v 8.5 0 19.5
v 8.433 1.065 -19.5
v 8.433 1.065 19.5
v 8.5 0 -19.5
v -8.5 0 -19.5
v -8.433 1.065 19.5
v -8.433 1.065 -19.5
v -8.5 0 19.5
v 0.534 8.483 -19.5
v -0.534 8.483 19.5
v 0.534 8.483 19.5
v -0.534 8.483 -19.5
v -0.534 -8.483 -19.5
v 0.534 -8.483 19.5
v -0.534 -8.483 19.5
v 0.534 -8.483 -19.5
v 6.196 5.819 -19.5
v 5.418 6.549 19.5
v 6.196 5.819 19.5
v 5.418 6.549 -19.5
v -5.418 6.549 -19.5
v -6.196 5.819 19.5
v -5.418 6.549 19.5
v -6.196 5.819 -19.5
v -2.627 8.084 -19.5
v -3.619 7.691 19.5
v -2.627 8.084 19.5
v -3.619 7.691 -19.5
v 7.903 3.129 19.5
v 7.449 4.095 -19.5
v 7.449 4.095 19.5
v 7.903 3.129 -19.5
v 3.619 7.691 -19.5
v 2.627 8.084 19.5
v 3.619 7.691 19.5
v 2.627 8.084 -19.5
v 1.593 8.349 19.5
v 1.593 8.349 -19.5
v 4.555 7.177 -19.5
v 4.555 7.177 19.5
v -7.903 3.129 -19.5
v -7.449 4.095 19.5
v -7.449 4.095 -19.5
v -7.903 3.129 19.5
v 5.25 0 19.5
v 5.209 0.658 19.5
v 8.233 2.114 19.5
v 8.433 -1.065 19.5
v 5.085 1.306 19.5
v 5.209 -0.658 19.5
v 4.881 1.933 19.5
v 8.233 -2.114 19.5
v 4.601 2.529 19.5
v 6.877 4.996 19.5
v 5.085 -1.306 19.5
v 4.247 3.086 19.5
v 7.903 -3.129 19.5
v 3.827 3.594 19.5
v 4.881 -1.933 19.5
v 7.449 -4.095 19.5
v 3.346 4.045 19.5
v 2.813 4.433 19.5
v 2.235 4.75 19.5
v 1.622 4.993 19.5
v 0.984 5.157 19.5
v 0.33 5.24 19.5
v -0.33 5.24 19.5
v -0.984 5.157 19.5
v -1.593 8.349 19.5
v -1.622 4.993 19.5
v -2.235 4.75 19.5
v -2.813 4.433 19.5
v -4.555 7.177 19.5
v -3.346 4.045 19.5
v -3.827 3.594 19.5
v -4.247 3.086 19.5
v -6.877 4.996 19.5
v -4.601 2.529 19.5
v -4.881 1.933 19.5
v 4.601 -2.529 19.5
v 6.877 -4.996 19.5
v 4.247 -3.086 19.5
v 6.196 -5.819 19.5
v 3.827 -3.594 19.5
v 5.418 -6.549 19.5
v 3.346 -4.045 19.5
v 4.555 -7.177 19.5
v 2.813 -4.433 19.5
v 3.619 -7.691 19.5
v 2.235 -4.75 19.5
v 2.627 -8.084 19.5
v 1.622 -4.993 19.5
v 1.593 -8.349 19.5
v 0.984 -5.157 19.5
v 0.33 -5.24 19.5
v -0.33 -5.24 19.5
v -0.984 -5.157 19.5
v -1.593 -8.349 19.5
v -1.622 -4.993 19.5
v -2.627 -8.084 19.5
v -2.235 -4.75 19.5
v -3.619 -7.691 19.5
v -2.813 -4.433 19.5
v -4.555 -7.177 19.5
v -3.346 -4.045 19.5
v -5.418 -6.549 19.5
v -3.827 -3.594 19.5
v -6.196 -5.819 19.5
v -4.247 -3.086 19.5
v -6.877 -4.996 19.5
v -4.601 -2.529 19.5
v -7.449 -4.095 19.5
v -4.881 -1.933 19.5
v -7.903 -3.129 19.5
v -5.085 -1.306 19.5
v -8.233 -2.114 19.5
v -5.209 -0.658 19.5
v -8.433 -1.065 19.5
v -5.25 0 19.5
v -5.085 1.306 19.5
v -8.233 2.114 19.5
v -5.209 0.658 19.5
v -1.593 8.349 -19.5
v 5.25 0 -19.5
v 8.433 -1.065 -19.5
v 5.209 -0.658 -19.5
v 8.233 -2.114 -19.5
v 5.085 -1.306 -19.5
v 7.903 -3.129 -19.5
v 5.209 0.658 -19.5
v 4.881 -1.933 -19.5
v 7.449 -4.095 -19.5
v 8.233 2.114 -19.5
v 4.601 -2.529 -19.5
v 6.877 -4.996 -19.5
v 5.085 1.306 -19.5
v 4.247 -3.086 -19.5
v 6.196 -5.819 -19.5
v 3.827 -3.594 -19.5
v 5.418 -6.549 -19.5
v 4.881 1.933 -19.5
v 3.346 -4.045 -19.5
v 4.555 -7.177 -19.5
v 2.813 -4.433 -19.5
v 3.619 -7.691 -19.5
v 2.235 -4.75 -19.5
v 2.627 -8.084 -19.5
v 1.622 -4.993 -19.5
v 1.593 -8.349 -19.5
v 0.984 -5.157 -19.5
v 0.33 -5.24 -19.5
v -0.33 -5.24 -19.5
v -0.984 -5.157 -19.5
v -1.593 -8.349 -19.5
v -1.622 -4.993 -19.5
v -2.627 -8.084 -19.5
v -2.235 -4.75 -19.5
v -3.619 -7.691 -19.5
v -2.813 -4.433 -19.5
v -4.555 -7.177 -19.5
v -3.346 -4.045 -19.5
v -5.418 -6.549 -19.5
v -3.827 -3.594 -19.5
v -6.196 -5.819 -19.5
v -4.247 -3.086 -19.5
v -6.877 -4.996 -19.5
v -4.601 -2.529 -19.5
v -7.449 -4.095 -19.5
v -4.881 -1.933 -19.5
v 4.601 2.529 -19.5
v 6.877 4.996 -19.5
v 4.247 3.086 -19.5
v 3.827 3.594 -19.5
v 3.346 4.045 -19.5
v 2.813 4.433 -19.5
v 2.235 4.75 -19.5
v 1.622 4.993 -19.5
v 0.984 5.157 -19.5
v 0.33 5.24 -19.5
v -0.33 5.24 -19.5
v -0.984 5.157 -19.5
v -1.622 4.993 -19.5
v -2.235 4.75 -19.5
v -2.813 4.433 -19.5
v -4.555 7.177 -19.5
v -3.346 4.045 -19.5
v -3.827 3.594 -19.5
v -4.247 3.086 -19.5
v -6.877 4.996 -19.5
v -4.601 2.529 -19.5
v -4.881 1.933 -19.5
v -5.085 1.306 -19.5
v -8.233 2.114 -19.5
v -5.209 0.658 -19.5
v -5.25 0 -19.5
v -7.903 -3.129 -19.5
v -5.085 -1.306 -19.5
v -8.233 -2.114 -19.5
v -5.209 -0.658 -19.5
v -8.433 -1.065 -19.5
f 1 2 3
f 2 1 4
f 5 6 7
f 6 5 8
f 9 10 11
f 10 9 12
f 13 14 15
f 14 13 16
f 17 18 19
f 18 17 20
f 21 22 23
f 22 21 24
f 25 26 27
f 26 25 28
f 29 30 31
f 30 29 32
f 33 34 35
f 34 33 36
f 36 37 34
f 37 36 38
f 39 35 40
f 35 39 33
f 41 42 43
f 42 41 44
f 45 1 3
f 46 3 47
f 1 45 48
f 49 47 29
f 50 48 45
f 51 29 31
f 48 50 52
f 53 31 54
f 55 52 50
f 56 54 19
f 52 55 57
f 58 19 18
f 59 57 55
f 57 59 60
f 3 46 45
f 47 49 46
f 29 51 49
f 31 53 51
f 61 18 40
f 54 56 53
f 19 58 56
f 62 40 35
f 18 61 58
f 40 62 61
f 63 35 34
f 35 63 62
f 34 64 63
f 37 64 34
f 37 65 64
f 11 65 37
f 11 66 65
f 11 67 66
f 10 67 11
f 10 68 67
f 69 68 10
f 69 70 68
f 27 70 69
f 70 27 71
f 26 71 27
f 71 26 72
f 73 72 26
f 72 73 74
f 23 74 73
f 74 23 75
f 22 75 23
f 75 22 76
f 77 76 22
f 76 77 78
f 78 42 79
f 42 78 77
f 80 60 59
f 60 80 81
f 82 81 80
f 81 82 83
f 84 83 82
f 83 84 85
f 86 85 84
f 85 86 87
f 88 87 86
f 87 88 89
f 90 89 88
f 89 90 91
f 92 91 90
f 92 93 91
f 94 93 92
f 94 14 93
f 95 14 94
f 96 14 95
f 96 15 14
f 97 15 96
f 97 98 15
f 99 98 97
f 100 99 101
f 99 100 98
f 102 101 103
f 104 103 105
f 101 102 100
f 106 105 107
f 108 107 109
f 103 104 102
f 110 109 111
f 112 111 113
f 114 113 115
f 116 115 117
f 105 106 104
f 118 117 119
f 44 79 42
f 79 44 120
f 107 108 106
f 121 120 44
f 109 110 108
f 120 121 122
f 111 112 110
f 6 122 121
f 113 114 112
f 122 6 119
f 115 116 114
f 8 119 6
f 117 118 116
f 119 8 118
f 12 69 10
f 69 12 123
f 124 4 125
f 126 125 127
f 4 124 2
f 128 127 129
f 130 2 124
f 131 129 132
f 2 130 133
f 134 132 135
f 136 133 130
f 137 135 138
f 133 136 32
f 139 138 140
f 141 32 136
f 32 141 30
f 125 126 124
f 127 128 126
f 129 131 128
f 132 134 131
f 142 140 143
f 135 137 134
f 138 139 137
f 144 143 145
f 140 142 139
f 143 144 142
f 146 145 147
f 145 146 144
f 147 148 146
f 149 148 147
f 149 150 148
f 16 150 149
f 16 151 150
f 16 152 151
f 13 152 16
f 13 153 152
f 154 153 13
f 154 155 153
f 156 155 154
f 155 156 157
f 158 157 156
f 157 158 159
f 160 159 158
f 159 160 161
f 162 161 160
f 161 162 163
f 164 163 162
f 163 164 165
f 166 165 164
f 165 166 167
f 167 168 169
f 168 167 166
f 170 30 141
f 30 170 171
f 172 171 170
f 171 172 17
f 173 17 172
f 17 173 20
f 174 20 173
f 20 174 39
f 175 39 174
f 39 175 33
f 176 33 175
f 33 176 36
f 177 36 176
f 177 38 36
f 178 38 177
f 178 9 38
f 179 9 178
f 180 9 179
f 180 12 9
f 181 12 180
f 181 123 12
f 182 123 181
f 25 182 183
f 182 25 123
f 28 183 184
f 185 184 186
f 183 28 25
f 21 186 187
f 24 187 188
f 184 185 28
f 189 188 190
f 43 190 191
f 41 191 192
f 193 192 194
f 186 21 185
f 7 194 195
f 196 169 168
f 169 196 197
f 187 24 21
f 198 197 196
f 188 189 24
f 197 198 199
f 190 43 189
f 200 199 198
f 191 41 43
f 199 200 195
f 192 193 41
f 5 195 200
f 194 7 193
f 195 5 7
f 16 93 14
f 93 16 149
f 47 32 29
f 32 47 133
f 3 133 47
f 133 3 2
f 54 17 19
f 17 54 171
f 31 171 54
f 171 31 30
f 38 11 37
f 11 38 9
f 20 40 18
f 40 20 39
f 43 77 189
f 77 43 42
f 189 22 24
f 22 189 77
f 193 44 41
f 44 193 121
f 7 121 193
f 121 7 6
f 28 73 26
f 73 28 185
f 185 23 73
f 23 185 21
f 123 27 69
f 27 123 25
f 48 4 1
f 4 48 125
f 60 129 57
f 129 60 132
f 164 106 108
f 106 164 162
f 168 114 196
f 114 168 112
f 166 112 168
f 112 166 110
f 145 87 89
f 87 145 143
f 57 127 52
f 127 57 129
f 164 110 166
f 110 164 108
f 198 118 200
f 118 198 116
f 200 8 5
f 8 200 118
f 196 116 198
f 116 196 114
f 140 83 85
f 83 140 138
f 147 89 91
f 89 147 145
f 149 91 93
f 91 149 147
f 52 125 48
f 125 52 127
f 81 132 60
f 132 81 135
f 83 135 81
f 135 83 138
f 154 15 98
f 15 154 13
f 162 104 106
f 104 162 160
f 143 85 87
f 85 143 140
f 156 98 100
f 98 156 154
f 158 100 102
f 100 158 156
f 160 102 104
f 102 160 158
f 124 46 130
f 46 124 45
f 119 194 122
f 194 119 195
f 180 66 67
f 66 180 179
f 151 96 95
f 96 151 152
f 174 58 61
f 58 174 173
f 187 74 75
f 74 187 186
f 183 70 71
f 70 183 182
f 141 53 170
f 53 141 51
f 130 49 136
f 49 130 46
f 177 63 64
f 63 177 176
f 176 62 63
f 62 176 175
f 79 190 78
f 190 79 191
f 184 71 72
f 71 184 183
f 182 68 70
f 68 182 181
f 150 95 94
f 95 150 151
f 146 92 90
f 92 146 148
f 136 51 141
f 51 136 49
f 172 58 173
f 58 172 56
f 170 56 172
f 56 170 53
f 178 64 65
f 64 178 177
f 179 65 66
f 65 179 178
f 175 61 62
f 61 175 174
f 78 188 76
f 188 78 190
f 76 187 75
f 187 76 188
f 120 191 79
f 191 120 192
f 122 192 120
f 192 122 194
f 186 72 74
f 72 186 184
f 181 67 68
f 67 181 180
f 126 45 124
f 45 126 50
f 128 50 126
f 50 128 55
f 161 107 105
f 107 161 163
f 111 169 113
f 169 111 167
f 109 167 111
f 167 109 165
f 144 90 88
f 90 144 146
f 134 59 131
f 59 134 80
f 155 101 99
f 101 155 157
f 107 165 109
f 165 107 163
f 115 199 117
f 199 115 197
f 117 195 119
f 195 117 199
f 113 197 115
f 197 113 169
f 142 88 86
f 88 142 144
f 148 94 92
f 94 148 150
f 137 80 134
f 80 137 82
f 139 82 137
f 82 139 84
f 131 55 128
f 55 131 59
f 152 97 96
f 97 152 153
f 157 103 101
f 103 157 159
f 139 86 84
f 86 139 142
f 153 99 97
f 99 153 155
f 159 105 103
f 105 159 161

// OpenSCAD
$fn = 50;


difference() {
	union() {
		translate(v = [0, 0, -19.5000000000]) {
			cylinder(h = 39, r = 8.5000000000);
		}
	}
	union() {
		translate(v = [0, 0, -100.0000000000]) {
			cylinder(h = 200, r = 5.2500000000);
		}
	}
}
